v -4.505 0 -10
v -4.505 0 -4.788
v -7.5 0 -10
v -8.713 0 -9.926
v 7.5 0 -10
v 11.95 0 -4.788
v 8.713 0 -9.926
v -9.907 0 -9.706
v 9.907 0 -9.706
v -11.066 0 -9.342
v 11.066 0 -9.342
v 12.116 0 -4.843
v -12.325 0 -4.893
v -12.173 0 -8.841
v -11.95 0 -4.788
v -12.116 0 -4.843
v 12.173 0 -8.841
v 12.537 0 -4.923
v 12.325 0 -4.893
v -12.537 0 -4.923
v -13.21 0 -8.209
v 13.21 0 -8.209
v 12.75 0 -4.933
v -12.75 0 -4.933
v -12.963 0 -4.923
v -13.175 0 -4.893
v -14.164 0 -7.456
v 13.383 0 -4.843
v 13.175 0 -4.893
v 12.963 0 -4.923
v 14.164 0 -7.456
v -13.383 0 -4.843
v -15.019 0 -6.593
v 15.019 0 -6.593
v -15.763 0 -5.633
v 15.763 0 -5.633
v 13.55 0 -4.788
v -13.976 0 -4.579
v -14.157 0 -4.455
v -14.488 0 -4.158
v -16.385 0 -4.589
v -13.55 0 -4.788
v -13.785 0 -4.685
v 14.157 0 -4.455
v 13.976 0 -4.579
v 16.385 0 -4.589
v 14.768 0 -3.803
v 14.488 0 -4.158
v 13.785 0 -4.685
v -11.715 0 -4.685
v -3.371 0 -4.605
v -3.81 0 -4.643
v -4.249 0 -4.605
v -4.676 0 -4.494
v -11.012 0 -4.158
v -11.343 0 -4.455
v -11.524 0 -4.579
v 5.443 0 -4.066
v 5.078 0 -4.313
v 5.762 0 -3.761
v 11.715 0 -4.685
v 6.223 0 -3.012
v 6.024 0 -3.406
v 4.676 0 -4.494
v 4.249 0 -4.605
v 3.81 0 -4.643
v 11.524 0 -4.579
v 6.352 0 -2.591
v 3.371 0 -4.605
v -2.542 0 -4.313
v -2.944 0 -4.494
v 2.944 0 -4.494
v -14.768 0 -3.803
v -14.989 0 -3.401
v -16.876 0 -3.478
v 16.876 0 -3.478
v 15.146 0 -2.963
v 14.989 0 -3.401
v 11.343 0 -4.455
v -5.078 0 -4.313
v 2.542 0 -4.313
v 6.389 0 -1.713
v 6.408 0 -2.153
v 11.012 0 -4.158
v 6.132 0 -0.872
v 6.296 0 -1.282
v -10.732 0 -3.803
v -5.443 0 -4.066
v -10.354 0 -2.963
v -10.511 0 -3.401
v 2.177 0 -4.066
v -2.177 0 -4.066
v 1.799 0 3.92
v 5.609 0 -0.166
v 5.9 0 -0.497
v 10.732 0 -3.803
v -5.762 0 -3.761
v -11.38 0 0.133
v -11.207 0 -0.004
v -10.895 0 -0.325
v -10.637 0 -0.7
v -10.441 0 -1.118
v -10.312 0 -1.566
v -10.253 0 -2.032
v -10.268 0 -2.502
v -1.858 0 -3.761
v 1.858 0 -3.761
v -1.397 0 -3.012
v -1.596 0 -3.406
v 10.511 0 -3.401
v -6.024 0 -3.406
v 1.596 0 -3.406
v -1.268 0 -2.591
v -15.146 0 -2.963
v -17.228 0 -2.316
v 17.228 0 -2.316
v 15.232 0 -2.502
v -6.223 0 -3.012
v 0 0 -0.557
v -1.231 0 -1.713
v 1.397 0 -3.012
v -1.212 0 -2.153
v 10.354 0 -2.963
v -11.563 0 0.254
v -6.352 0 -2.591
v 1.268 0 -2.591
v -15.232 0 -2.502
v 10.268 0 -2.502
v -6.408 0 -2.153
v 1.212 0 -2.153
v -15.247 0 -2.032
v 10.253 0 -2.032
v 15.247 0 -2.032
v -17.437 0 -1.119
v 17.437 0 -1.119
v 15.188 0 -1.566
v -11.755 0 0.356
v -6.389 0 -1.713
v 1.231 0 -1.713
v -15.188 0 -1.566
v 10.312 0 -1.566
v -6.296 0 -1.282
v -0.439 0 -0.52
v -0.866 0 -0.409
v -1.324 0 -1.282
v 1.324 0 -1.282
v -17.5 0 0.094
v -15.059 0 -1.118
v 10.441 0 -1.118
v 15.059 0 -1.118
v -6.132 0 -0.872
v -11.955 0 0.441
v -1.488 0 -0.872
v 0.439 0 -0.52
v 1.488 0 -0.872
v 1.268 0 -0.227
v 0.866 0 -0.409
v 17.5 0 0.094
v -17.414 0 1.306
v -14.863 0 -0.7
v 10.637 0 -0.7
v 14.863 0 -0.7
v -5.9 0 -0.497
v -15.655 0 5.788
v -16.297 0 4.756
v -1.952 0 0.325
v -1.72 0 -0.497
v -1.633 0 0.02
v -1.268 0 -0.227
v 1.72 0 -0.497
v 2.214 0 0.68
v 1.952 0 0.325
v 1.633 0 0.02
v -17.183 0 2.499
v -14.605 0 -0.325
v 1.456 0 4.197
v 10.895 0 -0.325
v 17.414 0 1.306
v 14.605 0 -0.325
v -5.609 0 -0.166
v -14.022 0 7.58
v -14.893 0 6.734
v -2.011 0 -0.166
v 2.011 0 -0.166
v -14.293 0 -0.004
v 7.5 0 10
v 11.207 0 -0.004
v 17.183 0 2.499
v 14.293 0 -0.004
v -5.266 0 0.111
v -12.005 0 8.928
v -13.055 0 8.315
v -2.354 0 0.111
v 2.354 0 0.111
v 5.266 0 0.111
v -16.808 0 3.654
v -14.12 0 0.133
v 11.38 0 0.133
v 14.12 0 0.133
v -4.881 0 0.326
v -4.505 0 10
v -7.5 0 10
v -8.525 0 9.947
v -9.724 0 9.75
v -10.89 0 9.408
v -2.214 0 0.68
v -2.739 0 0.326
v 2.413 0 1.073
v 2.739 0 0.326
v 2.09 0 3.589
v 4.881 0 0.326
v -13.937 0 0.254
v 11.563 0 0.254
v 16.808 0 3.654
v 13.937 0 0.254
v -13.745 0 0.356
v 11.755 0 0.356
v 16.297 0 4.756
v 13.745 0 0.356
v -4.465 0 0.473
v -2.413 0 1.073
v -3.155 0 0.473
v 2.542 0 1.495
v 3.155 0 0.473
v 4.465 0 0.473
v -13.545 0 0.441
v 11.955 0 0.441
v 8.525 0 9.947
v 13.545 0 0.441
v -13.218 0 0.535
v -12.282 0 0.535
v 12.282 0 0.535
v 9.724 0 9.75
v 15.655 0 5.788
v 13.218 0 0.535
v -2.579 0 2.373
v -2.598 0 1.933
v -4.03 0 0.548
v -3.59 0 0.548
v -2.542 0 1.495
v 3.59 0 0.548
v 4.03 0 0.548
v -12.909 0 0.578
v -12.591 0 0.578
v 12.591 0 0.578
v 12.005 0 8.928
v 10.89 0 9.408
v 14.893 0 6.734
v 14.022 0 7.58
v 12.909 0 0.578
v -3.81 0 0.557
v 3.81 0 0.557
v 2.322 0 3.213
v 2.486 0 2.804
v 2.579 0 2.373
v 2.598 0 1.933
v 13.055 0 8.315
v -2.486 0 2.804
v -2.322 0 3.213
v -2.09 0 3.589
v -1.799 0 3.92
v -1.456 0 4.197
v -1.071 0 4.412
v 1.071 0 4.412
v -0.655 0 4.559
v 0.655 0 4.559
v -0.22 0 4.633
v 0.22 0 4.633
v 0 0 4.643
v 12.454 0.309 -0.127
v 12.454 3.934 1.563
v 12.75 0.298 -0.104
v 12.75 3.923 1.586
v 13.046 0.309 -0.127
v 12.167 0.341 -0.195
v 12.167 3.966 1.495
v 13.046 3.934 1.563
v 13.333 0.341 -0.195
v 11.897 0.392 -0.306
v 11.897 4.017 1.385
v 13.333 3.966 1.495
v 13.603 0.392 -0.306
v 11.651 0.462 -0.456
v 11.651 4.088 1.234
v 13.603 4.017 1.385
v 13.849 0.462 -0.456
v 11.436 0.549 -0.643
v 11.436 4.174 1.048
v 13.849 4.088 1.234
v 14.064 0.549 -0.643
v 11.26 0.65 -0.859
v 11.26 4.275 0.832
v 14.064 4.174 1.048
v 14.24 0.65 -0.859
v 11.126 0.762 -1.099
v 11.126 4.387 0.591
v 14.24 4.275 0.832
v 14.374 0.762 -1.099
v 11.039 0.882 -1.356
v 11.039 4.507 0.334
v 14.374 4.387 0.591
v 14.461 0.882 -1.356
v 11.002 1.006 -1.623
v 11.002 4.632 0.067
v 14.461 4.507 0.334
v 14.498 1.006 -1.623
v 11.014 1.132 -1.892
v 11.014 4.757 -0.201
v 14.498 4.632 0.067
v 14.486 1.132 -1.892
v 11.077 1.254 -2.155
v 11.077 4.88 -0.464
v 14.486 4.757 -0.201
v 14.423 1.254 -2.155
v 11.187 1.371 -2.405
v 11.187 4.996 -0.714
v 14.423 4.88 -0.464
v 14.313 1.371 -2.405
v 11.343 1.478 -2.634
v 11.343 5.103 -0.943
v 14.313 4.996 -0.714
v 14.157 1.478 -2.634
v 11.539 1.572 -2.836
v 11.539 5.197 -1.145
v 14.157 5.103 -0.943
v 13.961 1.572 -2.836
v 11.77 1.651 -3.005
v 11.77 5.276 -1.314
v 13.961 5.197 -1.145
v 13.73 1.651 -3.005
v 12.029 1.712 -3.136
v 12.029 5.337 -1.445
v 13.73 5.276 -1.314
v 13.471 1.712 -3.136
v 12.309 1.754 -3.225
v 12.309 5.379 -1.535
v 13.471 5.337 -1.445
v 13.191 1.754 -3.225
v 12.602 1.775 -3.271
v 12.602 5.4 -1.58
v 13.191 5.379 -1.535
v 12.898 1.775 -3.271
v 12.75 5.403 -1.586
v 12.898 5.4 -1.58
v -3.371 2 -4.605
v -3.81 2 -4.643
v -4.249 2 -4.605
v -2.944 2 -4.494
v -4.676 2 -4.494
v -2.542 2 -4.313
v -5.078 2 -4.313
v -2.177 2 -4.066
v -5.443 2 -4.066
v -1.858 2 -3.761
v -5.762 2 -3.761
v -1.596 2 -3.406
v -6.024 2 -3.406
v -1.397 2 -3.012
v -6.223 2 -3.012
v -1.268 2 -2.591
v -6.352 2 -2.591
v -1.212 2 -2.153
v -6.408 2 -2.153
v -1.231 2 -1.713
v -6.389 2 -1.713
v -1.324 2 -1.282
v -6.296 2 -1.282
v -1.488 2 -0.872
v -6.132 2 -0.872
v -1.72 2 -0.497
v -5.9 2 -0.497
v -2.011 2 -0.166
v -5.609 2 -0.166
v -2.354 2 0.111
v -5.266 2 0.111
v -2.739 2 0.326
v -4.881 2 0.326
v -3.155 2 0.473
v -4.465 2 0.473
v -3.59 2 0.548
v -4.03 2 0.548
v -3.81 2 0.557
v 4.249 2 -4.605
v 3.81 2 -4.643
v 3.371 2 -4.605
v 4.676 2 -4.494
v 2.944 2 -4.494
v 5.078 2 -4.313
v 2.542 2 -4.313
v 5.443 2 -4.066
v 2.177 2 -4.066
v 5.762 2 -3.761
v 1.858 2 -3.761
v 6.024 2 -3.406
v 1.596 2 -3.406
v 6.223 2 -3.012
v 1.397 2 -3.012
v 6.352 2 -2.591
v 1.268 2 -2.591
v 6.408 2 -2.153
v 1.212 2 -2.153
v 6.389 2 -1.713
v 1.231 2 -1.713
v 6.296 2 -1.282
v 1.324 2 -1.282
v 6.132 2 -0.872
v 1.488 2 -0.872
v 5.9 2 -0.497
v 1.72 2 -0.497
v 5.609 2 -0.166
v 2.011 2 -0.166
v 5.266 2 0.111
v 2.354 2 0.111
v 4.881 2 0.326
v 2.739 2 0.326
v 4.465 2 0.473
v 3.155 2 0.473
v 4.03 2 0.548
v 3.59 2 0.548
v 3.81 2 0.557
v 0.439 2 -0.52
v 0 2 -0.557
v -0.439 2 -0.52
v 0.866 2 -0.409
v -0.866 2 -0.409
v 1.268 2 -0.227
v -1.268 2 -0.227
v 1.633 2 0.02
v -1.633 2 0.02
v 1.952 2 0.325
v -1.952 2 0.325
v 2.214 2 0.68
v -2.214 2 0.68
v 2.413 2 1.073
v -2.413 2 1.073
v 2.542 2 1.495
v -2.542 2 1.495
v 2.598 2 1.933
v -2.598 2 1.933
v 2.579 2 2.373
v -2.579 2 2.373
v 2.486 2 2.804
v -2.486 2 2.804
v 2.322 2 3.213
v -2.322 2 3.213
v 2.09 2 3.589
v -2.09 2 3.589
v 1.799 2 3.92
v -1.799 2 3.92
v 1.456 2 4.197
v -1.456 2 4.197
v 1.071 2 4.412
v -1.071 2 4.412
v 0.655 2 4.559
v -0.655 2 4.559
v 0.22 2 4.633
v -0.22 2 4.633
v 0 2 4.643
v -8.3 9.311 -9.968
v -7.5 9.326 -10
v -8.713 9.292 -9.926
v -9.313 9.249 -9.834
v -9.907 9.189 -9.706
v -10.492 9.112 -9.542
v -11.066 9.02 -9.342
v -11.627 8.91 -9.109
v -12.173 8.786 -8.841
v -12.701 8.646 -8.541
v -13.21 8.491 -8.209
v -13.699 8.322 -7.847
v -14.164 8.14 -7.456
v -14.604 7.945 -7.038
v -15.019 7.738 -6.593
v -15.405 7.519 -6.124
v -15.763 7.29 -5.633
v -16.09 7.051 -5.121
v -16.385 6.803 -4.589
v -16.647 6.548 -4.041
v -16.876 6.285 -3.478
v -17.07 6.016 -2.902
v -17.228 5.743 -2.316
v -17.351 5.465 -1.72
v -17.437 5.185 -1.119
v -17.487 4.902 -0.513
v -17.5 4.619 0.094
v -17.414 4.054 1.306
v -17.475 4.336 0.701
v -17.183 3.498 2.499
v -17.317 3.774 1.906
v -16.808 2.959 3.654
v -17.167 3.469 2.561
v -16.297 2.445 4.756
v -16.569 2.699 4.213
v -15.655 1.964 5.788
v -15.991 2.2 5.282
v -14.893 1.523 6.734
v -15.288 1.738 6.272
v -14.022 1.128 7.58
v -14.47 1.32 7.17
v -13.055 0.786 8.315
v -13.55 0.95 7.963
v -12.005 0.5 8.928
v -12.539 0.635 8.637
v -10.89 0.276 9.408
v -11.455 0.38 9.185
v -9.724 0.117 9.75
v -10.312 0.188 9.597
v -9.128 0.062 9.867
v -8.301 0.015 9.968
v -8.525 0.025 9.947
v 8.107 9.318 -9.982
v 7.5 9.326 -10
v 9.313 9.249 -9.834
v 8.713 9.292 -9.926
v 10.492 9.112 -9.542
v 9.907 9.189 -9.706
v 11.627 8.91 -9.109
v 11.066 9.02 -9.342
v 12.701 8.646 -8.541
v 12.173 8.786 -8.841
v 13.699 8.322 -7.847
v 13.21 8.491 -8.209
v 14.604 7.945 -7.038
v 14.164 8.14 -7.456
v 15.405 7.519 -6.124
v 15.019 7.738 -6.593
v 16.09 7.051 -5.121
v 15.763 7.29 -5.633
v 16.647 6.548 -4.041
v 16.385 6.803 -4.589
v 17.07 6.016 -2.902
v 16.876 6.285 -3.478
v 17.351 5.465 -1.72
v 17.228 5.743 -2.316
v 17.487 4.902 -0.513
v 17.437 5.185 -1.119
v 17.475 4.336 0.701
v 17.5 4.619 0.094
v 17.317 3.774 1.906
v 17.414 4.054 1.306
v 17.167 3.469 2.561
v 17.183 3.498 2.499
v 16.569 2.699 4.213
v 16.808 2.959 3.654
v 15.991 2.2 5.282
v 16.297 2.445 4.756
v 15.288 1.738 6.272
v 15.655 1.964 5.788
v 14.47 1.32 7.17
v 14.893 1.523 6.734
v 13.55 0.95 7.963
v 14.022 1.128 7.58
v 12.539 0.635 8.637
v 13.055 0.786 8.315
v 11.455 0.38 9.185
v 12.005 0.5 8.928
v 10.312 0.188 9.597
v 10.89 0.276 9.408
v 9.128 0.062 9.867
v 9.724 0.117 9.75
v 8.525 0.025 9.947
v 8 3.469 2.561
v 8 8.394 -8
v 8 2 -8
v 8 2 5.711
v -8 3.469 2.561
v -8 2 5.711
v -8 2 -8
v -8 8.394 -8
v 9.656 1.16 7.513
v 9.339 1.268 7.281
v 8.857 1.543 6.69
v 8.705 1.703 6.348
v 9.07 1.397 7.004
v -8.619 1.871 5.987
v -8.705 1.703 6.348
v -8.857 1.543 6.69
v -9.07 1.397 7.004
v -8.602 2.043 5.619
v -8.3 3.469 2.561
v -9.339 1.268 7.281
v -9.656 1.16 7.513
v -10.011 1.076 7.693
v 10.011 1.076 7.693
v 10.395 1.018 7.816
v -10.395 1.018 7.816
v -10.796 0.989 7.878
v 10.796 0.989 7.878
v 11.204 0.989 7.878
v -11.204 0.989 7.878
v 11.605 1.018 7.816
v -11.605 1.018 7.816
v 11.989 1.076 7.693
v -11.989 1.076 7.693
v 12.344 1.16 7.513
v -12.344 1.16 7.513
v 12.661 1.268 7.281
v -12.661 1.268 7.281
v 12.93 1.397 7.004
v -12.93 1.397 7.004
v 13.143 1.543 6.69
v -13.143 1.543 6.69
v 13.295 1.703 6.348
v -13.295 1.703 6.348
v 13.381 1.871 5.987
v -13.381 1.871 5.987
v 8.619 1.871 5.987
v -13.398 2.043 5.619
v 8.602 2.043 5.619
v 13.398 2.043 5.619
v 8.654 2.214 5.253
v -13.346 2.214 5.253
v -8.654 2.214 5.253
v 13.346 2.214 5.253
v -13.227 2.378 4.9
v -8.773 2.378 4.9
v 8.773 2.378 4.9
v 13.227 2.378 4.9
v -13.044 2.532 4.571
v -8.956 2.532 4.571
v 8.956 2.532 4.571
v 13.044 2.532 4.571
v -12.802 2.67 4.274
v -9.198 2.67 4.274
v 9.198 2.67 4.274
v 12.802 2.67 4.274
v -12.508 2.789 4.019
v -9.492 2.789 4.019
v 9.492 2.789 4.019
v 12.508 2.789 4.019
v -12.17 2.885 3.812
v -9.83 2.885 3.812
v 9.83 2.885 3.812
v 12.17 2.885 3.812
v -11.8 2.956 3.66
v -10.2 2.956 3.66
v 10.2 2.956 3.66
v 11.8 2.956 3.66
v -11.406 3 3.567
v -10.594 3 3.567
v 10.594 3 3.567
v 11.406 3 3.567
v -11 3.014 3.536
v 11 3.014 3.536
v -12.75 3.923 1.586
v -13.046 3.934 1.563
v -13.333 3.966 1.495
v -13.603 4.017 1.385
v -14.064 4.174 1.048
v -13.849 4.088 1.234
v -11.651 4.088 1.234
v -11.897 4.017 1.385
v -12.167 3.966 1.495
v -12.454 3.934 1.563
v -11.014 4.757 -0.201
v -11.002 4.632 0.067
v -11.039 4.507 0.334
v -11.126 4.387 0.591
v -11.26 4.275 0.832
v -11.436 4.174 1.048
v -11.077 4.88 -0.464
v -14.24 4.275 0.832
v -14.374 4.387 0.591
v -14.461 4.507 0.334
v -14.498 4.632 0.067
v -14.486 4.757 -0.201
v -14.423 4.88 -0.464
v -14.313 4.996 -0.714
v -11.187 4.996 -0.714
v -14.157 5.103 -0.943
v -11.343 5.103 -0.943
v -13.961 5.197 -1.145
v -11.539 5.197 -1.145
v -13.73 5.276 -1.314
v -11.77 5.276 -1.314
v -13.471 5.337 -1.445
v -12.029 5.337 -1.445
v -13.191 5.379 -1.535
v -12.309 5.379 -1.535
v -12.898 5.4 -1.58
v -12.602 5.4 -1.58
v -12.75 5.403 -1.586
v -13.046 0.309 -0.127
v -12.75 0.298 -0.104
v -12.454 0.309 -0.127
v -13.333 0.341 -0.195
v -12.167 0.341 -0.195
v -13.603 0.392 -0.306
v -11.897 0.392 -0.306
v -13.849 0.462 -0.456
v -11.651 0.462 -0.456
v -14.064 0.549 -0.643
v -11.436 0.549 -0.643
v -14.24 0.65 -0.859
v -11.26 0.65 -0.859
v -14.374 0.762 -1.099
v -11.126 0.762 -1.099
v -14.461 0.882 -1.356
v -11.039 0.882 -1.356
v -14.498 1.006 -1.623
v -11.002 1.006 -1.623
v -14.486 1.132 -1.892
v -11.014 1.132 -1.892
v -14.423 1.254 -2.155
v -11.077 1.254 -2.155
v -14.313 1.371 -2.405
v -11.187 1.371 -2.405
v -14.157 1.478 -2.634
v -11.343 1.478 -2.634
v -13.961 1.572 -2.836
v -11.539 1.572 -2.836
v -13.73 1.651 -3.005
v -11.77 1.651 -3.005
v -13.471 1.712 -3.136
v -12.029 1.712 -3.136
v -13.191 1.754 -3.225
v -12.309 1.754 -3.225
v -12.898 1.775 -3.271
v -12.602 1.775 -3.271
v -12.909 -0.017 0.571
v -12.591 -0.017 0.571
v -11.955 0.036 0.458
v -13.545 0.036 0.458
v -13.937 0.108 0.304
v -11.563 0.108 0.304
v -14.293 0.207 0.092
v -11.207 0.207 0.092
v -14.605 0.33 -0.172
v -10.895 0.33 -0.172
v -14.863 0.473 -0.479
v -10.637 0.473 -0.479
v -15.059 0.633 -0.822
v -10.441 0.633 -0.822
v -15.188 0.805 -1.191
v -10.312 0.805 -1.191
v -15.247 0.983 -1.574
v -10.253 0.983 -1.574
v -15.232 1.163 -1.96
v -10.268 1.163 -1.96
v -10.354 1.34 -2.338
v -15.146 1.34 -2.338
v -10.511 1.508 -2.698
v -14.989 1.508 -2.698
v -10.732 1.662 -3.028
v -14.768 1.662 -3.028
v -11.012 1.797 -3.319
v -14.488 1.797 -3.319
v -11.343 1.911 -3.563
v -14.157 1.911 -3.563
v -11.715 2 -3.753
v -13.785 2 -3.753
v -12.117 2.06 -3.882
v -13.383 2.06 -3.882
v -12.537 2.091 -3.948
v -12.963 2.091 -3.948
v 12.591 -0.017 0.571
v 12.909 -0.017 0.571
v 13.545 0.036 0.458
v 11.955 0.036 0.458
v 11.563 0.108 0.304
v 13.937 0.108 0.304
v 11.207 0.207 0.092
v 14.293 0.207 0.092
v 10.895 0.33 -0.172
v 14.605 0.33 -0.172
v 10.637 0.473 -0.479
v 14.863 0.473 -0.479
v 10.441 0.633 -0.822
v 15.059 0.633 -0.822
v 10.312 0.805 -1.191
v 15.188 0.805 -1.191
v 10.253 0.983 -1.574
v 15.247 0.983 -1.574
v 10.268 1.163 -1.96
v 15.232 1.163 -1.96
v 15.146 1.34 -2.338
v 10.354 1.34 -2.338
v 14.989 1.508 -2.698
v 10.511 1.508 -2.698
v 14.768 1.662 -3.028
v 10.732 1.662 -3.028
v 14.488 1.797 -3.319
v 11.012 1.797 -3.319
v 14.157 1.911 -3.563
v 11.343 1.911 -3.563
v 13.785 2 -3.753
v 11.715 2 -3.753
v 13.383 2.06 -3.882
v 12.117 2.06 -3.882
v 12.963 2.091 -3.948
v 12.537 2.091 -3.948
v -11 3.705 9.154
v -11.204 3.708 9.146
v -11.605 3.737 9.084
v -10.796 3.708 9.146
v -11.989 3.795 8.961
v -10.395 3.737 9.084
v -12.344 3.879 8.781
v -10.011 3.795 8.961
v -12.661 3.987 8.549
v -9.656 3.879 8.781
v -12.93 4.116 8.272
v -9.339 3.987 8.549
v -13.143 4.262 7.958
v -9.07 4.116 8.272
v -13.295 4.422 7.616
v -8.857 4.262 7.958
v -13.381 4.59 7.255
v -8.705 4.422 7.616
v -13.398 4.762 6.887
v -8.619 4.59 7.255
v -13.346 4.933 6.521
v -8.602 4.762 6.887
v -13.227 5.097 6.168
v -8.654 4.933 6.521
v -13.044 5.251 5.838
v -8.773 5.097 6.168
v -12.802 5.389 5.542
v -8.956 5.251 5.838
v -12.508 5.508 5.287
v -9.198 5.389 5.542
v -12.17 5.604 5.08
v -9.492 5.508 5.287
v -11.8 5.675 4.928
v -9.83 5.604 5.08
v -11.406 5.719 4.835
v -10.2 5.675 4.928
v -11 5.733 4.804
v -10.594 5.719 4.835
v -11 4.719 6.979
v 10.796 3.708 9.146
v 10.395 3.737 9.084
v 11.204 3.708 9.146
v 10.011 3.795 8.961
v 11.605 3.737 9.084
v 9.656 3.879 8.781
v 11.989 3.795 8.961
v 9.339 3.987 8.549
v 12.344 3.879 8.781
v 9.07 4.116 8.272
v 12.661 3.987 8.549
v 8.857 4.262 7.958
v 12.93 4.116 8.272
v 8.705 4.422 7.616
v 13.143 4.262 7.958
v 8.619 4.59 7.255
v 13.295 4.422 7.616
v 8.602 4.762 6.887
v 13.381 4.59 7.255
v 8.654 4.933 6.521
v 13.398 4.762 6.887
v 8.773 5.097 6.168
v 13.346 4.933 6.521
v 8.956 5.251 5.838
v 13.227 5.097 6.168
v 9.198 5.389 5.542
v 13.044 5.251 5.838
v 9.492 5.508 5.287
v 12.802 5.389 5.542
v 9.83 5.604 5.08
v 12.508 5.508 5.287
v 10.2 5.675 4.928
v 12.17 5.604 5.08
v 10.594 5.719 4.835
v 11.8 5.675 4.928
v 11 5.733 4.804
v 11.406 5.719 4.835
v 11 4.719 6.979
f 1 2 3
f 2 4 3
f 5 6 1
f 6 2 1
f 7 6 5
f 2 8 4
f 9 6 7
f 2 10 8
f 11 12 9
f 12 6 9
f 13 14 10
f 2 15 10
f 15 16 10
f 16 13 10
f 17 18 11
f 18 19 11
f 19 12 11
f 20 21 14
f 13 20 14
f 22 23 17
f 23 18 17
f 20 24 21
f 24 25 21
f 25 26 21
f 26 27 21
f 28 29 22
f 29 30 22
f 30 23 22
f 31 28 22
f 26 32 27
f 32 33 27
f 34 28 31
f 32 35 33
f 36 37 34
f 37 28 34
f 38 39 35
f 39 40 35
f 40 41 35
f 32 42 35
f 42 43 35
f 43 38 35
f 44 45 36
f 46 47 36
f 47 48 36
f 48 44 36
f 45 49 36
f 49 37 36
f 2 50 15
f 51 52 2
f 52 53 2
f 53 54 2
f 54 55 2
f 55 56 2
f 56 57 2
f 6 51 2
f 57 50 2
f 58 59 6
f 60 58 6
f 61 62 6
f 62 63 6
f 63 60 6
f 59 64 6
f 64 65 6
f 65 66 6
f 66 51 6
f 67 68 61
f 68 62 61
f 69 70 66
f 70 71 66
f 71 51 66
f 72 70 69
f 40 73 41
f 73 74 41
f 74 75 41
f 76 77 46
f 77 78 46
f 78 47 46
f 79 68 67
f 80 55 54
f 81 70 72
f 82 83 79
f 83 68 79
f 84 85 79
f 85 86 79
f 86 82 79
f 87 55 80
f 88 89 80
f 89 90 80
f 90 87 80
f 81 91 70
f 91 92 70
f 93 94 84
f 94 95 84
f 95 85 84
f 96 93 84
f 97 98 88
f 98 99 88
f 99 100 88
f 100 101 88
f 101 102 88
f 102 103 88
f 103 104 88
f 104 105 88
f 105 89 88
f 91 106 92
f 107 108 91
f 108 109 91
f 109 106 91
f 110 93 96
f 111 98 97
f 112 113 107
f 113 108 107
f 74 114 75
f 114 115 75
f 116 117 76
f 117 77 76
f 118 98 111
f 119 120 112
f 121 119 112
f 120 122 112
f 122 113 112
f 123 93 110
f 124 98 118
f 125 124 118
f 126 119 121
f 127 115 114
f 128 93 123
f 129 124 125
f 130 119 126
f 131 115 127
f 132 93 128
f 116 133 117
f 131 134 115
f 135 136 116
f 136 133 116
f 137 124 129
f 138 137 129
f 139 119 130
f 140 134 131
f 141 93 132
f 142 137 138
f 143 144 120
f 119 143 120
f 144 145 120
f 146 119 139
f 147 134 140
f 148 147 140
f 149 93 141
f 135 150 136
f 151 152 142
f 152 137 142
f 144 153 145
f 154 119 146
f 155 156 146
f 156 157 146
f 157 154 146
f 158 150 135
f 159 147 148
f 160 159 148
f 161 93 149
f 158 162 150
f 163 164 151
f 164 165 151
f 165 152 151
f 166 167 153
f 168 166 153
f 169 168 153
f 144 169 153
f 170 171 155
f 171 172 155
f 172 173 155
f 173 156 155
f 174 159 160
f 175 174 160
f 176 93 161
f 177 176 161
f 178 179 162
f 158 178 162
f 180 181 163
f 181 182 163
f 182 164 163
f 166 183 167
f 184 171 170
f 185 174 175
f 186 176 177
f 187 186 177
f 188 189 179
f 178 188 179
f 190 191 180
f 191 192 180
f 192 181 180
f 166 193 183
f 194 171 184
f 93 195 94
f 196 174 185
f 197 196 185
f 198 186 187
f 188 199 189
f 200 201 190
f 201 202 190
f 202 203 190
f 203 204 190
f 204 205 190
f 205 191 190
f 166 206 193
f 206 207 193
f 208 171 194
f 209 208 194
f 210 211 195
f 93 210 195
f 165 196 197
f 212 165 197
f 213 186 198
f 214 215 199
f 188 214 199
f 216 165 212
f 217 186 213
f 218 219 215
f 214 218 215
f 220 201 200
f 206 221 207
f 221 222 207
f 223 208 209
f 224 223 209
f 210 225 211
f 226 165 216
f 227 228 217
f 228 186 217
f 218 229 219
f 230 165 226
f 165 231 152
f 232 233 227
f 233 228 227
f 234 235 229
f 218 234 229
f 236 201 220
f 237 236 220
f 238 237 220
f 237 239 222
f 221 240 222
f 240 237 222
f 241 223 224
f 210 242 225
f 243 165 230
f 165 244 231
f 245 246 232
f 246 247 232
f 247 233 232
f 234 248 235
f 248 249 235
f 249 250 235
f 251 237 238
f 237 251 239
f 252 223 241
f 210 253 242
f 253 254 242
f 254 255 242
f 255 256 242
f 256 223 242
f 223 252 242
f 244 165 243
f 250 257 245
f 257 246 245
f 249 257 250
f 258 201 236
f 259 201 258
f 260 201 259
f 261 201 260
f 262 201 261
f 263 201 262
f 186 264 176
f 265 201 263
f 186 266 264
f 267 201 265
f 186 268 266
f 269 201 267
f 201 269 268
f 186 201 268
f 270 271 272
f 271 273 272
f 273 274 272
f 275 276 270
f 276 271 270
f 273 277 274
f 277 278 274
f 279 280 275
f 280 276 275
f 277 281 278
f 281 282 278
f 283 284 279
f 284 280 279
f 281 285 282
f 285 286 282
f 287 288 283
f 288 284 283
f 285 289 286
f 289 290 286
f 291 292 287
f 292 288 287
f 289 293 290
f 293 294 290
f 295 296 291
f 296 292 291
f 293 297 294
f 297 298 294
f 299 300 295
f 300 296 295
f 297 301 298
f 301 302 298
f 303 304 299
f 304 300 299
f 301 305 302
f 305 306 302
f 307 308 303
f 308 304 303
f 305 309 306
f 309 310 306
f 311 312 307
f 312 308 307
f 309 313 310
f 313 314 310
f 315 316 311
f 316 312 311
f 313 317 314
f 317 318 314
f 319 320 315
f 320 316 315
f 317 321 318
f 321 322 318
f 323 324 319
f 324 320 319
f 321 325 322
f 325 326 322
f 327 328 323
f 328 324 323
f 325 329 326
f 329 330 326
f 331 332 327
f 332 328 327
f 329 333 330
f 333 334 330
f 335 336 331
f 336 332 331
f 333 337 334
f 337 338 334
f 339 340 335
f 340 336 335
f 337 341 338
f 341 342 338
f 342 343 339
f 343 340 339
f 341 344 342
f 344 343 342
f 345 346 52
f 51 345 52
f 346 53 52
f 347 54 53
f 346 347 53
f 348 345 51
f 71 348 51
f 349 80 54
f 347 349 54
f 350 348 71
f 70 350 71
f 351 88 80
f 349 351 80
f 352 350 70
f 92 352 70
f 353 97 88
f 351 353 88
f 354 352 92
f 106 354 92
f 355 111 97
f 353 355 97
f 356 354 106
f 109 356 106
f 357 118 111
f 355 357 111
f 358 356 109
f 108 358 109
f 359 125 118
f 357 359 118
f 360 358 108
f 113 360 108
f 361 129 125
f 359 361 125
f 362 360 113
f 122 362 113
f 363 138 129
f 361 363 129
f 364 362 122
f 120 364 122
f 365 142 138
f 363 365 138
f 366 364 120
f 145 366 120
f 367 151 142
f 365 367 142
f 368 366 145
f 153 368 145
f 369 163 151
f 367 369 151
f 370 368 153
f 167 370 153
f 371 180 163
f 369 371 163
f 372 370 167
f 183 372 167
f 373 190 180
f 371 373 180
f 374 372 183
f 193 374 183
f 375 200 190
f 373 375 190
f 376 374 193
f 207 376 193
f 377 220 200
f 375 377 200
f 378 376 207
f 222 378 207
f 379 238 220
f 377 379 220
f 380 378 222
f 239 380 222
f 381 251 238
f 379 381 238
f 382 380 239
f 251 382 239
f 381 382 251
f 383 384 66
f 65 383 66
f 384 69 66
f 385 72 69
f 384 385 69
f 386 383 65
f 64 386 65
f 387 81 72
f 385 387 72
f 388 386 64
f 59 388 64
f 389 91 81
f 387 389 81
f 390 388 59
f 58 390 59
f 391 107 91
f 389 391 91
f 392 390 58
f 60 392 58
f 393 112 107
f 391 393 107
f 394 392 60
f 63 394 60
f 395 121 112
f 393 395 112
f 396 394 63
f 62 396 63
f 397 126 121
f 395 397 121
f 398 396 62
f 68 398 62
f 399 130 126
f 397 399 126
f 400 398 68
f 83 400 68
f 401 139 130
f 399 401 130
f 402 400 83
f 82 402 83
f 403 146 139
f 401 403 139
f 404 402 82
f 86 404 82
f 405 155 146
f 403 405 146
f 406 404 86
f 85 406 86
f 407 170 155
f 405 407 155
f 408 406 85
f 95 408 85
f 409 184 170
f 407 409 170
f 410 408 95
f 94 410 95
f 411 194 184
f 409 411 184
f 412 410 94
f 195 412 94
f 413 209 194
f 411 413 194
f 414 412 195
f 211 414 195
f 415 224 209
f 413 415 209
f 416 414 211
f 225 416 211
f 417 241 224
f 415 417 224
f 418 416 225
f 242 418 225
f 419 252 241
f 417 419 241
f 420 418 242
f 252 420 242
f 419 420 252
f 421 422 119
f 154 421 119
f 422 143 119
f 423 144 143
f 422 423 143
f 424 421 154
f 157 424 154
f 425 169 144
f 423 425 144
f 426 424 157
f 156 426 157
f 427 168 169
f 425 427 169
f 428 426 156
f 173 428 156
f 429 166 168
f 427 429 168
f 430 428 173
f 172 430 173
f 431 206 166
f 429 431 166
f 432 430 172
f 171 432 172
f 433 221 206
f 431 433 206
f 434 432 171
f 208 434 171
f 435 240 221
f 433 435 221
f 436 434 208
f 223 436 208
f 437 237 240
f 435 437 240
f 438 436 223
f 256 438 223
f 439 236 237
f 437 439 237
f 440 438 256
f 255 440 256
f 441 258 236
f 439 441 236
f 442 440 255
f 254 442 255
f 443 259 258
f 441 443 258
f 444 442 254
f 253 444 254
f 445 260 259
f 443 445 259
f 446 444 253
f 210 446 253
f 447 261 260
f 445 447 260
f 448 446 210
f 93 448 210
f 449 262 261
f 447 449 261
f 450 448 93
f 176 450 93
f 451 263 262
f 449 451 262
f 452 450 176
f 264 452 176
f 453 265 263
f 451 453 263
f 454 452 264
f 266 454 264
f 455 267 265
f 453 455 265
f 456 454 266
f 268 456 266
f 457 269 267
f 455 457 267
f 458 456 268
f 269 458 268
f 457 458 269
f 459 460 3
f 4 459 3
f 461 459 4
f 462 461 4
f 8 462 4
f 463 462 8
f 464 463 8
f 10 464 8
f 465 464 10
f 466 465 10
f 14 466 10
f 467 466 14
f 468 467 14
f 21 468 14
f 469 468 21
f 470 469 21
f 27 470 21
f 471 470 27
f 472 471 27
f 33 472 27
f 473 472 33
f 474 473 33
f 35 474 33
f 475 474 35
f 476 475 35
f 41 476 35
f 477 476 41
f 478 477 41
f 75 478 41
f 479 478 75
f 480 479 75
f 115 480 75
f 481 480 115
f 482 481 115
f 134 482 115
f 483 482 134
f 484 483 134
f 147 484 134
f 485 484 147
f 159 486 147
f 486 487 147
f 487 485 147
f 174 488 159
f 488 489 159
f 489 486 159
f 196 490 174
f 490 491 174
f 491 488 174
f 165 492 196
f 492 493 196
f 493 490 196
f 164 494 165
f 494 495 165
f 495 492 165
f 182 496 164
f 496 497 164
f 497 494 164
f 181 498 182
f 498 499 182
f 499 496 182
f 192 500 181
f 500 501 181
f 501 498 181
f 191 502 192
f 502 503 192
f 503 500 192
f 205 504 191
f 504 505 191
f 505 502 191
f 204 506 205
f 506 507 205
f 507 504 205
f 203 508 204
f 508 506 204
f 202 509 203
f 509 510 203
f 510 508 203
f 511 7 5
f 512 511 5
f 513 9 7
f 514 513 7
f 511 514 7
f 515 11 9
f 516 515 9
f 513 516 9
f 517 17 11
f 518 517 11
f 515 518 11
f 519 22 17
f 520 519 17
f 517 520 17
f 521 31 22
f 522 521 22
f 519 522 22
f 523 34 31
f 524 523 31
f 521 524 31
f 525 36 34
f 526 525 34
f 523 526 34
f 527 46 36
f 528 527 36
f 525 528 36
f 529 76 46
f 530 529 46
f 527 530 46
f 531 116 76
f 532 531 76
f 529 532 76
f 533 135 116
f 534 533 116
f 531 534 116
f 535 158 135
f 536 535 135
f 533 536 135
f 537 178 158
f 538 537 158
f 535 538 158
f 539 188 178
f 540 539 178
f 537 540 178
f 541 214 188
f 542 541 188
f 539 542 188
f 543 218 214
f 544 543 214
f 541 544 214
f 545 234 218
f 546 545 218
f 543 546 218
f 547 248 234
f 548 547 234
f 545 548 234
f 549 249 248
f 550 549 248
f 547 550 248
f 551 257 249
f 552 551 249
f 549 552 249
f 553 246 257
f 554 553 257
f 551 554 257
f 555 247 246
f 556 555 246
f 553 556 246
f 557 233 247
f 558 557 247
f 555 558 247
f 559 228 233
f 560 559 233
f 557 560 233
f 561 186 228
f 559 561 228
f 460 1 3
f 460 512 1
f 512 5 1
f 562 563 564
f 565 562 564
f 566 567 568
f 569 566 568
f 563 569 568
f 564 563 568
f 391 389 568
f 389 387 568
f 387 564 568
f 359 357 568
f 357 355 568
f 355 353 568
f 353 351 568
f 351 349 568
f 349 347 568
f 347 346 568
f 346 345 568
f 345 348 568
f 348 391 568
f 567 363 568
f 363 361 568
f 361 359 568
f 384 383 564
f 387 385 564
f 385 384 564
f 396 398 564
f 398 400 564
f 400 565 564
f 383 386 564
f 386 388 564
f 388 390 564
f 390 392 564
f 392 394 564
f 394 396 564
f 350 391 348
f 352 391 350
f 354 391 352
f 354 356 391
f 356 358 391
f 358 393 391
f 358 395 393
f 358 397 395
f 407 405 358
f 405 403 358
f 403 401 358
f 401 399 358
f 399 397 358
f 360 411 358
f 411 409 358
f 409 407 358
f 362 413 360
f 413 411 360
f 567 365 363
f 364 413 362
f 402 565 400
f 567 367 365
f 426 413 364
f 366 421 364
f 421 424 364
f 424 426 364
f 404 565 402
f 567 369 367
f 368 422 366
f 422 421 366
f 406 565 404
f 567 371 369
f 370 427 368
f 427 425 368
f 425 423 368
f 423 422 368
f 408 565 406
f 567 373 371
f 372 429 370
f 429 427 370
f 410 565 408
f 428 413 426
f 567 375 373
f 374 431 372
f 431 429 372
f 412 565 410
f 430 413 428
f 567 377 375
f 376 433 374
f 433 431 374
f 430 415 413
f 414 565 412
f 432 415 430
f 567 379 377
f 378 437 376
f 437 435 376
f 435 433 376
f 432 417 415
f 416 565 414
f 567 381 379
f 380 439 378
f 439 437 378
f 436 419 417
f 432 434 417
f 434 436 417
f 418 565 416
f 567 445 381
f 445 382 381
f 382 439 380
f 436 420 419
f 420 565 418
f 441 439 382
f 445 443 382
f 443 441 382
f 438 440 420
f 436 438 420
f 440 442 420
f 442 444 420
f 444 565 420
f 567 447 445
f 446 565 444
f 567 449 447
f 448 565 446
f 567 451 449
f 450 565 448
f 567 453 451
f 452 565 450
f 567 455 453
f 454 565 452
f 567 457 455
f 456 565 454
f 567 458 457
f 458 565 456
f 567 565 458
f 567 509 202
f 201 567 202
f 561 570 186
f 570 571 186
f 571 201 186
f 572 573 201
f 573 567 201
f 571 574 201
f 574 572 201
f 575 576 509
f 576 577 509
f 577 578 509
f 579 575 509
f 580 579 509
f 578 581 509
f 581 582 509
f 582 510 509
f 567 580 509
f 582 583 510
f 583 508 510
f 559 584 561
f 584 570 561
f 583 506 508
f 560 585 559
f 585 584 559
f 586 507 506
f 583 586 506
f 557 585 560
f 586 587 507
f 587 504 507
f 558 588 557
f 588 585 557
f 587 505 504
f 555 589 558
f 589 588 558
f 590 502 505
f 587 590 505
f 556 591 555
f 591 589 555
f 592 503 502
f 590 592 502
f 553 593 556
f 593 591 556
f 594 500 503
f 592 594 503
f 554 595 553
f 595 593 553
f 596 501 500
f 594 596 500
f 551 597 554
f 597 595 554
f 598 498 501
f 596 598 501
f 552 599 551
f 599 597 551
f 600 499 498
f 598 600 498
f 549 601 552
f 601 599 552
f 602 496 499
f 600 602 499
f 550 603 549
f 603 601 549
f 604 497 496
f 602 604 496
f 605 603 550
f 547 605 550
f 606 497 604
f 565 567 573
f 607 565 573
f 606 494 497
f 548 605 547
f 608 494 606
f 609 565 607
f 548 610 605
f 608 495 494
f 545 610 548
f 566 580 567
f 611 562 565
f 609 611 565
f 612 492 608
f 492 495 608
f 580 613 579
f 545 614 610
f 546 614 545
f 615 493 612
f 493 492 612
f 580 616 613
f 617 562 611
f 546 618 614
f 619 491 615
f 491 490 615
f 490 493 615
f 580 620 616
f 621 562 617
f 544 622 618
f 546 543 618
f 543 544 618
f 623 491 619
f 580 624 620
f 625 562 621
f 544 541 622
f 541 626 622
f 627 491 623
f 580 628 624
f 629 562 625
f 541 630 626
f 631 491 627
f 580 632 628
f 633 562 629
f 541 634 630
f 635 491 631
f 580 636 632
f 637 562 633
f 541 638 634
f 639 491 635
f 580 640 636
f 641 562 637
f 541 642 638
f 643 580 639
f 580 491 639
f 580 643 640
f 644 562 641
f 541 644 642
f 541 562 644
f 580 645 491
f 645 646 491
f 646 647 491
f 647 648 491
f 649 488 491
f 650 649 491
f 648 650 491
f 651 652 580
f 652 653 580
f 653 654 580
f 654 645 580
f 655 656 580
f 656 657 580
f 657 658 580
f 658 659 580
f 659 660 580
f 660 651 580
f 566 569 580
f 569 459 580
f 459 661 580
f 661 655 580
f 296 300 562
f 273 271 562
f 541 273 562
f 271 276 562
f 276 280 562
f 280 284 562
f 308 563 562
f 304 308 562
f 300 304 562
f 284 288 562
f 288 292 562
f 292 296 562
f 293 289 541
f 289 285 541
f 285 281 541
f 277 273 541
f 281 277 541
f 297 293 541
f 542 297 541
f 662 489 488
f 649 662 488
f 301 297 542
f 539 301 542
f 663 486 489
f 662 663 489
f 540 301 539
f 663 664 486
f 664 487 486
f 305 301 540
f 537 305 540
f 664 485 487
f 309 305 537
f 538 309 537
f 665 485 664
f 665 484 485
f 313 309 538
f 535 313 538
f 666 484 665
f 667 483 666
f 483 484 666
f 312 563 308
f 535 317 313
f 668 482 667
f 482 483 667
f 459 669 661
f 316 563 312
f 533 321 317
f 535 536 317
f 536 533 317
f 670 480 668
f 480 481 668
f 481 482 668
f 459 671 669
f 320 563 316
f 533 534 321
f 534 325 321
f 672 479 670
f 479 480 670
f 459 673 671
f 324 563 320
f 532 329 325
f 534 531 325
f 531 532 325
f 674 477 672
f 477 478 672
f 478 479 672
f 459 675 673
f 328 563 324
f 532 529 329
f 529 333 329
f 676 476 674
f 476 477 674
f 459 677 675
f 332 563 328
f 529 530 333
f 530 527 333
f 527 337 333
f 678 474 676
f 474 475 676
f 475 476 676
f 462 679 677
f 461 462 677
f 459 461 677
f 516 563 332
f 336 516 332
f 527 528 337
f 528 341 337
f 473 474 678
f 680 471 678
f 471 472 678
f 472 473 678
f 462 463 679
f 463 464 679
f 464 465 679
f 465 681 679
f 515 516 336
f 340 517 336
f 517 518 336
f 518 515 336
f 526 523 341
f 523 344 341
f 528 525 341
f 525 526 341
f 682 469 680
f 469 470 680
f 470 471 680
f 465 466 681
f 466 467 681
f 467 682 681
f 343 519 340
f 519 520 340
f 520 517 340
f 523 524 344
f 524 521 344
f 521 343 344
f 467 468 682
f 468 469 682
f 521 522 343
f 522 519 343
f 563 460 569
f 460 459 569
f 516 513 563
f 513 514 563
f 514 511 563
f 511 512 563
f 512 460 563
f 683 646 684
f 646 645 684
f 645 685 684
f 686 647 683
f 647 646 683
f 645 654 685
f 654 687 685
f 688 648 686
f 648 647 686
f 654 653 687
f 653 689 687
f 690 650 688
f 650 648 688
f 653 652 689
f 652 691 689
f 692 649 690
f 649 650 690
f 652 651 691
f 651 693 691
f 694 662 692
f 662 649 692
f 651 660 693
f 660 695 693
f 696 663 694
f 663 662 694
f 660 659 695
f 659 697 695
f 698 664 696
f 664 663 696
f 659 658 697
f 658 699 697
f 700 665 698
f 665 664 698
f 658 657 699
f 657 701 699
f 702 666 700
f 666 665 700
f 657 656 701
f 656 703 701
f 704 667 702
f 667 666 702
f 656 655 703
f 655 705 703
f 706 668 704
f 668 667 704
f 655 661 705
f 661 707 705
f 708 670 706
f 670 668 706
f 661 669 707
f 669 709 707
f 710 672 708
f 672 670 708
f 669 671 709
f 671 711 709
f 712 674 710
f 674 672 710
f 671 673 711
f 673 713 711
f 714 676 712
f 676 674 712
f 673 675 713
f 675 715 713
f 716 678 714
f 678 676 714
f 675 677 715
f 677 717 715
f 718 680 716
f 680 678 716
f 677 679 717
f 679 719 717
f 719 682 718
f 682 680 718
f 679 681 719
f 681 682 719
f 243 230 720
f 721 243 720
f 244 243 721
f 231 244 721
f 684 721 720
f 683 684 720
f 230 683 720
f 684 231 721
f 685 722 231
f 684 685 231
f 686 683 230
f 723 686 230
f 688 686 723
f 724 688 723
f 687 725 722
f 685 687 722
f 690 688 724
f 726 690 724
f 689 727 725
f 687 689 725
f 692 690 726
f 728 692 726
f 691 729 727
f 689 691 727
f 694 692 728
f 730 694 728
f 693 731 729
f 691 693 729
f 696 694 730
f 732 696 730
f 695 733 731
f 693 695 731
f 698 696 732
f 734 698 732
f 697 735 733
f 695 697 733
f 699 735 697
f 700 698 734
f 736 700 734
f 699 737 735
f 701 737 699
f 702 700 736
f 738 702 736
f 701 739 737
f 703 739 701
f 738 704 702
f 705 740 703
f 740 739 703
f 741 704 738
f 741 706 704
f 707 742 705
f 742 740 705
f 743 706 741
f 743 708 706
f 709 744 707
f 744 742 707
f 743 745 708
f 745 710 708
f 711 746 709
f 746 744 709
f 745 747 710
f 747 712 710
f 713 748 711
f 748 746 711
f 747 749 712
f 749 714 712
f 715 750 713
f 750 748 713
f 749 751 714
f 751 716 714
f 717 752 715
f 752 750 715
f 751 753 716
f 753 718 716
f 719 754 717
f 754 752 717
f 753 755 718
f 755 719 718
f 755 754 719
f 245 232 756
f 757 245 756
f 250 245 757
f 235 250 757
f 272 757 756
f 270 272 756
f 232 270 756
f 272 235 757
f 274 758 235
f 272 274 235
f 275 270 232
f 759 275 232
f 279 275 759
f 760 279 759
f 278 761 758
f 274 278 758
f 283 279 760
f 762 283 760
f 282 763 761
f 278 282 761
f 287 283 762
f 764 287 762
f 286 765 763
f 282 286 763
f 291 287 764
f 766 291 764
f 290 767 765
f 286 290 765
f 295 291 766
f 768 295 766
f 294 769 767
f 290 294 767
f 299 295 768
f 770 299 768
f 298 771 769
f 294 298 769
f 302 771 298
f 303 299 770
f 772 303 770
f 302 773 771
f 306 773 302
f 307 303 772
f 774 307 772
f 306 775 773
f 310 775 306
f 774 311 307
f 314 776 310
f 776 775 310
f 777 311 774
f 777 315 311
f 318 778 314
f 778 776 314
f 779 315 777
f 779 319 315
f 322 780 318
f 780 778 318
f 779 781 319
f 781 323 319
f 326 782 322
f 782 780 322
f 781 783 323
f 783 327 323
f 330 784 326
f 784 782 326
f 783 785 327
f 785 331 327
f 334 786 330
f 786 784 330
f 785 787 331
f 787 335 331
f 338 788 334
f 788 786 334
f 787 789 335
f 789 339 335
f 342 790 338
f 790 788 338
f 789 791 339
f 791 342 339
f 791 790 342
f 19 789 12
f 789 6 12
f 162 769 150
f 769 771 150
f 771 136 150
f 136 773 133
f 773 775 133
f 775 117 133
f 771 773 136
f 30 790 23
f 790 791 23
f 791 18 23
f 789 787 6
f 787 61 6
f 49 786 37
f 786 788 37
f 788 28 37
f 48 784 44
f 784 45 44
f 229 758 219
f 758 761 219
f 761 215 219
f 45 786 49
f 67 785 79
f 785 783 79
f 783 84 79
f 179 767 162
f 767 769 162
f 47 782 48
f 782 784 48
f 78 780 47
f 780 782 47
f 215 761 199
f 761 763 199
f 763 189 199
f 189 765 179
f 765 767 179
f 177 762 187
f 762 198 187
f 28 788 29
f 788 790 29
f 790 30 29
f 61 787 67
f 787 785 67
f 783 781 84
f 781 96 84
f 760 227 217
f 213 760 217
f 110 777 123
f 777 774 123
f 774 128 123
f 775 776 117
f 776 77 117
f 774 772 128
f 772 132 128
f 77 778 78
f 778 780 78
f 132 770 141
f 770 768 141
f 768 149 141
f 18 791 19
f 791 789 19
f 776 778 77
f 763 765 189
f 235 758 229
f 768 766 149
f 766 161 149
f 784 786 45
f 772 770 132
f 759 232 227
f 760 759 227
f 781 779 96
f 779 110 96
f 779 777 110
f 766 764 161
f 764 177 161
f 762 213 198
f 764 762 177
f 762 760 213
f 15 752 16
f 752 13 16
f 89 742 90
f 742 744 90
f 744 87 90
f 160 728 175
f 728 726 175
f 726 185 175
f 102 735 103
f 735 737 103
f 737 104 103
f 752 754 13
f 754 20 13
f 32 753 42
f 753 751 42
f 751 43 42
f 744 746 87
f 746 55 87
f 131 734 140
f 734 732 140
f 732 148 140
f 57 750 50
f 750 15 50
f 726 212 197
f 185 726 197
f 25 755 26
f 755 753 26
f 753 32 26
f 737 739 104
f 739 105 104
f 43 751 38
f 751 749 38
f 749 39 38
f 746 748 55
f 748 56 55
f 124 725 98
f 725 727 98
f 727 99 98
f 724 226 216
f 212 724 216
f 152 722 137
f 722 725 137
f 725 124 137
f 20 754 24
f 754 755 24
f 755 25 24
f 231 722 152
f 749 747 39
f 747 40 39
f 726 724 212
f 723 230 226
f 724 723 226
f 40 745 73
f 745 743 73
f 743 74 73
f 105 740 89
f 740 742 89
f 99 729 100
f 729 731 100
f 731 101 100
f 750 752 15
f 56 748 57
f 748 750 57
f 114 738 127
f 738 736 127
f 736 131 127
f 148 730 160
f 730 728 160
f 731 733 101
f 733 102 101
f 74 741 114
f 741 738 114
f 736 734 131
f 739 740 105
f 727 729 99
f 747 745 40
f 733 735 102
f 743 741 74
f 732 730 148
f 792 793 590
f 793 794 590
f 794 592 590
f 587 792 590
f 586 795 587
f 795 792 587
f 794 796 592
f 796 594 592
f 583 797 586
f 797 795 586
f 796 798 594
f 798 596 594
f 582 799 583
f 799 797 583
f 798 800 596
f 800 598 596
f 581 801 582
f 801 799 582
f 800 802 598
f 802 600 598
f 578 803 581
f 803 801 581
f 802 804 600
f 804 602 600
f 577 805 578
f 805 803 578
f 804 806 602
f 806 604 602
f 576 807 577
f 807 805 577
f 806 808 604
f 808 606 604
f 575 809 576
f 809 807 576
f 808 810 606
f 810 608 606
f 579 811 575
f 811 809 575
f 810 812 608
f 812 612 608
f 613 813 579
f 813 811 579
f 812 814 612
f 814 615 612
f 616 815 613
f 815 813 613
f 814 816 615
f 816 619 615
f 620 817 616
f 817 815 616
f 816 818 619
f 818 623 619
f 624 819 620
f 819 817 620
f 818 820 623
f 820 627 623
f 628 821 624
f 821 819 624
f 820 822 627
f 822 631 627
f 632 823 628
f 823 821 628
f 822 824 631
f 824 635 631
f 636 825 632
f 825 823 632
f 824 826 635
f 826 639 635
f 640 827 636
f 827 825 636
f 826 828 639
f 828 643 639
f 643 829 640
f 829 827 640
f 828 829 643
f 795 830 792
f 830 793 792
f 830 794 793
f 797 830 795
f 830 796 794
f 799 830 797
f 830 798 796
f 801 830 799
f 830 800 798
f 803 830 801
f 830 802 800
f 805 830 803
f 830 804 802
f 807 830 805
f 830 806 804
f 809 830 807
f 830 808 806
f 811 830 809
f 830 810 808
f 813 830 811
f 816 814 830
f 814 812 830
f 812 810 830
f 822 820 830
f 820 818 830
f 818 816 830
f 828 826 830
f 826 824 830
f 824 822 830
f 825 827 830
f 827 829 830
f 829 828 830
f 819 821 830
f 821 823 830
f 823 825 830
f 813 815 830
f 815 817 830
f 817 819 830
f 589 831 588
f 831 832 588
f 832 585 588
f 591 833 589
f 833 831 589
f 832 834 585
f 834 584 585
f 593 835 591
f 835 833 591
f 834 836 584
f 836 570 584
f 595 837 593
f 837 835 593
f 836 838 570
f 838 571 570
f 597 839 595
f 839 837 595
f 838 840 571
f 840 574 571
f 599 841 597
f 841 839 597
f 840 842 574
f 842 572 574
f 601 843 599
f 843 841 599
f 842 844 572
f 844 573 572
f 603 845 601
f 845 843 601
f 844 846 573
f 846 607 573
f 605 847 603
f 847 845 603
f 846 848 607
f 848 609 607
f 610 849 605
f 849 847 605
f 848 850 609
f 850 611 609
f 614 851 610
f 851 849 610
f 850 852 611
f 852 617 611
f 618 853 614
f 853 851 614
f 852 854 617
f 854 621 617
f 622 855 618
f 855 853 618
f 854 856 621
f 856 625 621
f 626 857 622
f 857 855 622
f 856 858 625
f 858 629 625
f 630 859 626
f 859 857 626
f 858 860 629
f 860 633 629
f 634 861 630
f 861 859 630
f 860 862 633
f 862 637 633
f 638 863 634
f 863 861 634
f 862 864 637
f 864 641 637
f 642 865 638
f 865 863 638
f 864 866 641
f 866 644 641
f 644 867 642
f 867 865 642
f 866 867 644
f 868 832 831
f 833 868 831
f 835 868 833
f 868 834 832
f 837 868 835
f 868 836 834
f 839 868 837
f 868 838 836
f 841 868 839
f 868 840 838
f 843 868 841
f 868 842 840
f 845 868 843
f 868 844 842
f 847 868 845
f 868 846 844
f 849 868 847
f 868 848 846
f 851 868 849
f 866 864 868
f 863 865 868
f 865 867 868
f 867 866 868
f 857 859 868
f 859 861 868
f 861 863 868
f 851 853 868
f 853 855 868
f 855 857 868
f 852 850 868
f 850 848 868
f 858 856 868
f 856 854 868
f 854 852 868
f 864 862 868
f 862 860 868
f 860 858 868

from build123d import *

# Parameters (mm, degrees)
SKETCH1_R               = 2.6
BOSS_EXTRUDE3_DEPTH     = 20
SKETCH2_W               = 16
SKETCH2_H               = 16
CUT_EXTRUDE1_DEPTH      = 18
CUT_EXTRUDE2_DEPTH      = 34.915335764
CUT_EXTRUDE2_DEPTH_BACK = 34.915335764
CUT_EXTRUDE3_DEPTH      = 22.802901488
CUT_EXTRUDE3_DEPTH_BACK = 22.802901488
SKETCH5_R               = 1.75
SKETCH7_R               = 2.5
SKETCH7_R_2             = 1.75
BOSS_EXTRUDE4_DEPTH     = 4
CUT_EXTRUDE6_START      = -6.310905
SKETCH7_5_R             = 2.5
SKETCH7_5_R_2           = 1.75
CUT_EXTRUDE6_DEPTH      = 2.310905
SKETCH9_R               = 2.4
BOSS_EXTRUDE5_DEPTH     = 3


with BuildPart() as part:
    # Sketch1 → Boss-Extrude3 (new body)
    with BuildSketch(Plane(origin=(0, 0, 0), x_dir=(1, 0, 0), z_dir=(0, 1, 0))):
        with BuildLine():
            Line((-7.5, 10), (7.5, 10))
            ThreePointArc((7.5, 10), (17.5, 0), (7.5, -10))
            Line((7.5, -10), (-7.5, -10))
            ThreePointArc((-7.5, -10), (-17.5, 0), (-7.5, 10))
        make_face()
        with Locations(Location((-3.81, 2.042862393, 0), (0, 0, 270))):
            Circle(SKETCH1_R, mode=Mode.SUBTRACT)
        with Locations(Location((3.81, 2.042862393, 0), (0, 0, 270))):
            Circle(SKETCH1_R, mode=Mode.SUBTRACT)
        with Locations(Location((0, -2.042862393, 0), (0, 0, 270))):
            Circle(SKETCH1_R, mode=Mode.SUBTRACT)
    extrude(amount=BOSS_EXTRUDE3_DEPTH)

    # Sketch2 → Cut-Extrude1 (cut)
    with BuildSketch(Plane(origin=(0, 20, 0), x_dir=(1, 0, 0), z_dir=(0, 1, 0))):
        Rectangle(SKETCH2_W, SKETCH2_H)
    extrude(amount=-CUT_EXTRUDE1_DEPTH, mode=Mode.SUBTRACT)

    # Sketch4 → Cut-Extrude2 (cut, two sides: drawn at the far end of the back side and taken through both)
    with BuildSketch(Plane(origin=(-8, 0, 0), x_dir=(0, 0, -1), z_dir=(1, 0, 0)).offset(-CUT_EXTRUDE2_DEPTH_BACK)):
        Polygon((-8, 2), (-5.710986159, 2), (8, 8.393537847), (8, 20), (-8, 20), align=None)
        Polygon((8, 20), (8, 8.393537847), (10, 9.326153163), (10, 20), align=None)
        Polygon((-10, 20), (-10, 0), (-5.710986159, 2), (-8, 2), (-8, 20), align=None)
    extrude(amount=CUT_EXTRUDE2_DEPTH + CUT_EXTRUDE2_DEPTH_BACK, mode=Mode.SUBTRACT)

    # Sketch5 → Cut-Extrude3 (cut, two sides: drawn at the far end of the back side and taken through both)
    with BuildSketch(Plane(origin=(0, 3.830222216, 1.786061952), x_dir=(1, 0, 0), z_dir=(0, 0.9063077870366478, 0.42261826174070405)).offset(-CUT_EXTRUDE3_DEPTH_BACK)):
        with Locations(Location((-12.75, 1.970701319, 0), (0, 0, 270))):
            Circle(SKETCH5_R)
        with Locations(Location((12.75, 1.970701319, 0), (0, 0, 270))):
            Circle(SKETCH5_R)
    extrude(amount=CUT_EXTRUDE3_DEPTH + CUT_EXTRUDE3_DEPTH_BACK, mode=Mode.SUBTRACT)

    # Sketch7 → Boss-Extrude4 (add)
    # profile 1 of 2: a face of its own
    with BuildSketch(Plane(origin=(0, 3.830222216, 1.786061952), x_dir=(1, 0, 0), z_dir=(0, 0.9063077870366478, 0.42261826174070405))):
        with Locations((-12.75, 1.970701319)):
            Circle(SKETCH7_R)
        with Locations(Location((-12.75, 1.970701319, 0), (0, 0, 270))):
            Circle(SKETCH7_R_2, mode=Mode.SUBTRACT)
    # profile 2 of 2: a face of its own
    with BuildSketch(Plane(origin=(0, 3.830222216, 1.786061952), x_dir=(1, 0, 0), z_dir=(0, 0.9063077870366478, 0.42261826174070405))):
        with Locations((12.75, 1.970701319)):
            Circle(SKETCH7_R)
        with Locations(Location((12.75, 1.970701319, 0), (0, 0, 270))):
            Circle(SKETCH7_R_2, mode=Mode.SUBTRACT)
    extrude(amount=-BOSS_EXTRUDE4_DEPTH)

    # Sketch7<5> → Cut-Extrude6 (cut)
    # profile 1 of 2: a face of its own
    with BuildSketch(Plane(origin=(0, 3.830222216, 1.786061952), x_dir=(1, 0, 0), z_dir=(0, 0.9063077870366478, 0.42261826174070405)).offset(CUT_EXTRUDE6_START)):
        with Locations((-12.75, 1.970701319)):
            Circle(SKETCH7_5_R)
        with Locations(Location((-12.75, 1.970701319, 0), (0, 0, 270))):
            Circle(SKETCH7_5_R_2, mode=Mode.SUBTRACT)
    # profile 2 of 2: a face of its own
    with BuildSketch(Plane(origin=(0, 3.830222216, 1.786061952), x_dir=(1, 0, 0), z_dir=(0, 0.9063077870366478, 0.42261826174070405)).offset(CUT_EXTRUDE6_START)):
        with Locations((12.75, 1.970701319)):
            Circle(SKETCH7_5_R)
        with Locations(Location((12.75, 1.970701319, 0), (0, 0, 270))):
            Circle(SKETCH7_5_R_2, mode=Mode.SUBTRACT)
    extrude(amount=CUT_EXTRUDE6_DEPTH, mode=Mode.SUBTRACT)

    # Sketch9 → Boss-Extrude5 (add)
    with BuildSketch(Plane(origin=(0, 3.830222216, 1.786061952), x_dir=(1, 0, 0), z_dir=(0, 0.9063077870366478, 0.4226182617407042))):
        with Locations(Location((-11, -4.330674704, 0), (0, 0, 90))):
            Circle(SKETCH9_R)
        with Locations(Location((11, -4.330674704, 0), (0, 0, 90))):
            Circle(SKETCH9_R)
    extrude(amount=BOSS_EXTRUDE5_DEPTH)


solid = part.part
